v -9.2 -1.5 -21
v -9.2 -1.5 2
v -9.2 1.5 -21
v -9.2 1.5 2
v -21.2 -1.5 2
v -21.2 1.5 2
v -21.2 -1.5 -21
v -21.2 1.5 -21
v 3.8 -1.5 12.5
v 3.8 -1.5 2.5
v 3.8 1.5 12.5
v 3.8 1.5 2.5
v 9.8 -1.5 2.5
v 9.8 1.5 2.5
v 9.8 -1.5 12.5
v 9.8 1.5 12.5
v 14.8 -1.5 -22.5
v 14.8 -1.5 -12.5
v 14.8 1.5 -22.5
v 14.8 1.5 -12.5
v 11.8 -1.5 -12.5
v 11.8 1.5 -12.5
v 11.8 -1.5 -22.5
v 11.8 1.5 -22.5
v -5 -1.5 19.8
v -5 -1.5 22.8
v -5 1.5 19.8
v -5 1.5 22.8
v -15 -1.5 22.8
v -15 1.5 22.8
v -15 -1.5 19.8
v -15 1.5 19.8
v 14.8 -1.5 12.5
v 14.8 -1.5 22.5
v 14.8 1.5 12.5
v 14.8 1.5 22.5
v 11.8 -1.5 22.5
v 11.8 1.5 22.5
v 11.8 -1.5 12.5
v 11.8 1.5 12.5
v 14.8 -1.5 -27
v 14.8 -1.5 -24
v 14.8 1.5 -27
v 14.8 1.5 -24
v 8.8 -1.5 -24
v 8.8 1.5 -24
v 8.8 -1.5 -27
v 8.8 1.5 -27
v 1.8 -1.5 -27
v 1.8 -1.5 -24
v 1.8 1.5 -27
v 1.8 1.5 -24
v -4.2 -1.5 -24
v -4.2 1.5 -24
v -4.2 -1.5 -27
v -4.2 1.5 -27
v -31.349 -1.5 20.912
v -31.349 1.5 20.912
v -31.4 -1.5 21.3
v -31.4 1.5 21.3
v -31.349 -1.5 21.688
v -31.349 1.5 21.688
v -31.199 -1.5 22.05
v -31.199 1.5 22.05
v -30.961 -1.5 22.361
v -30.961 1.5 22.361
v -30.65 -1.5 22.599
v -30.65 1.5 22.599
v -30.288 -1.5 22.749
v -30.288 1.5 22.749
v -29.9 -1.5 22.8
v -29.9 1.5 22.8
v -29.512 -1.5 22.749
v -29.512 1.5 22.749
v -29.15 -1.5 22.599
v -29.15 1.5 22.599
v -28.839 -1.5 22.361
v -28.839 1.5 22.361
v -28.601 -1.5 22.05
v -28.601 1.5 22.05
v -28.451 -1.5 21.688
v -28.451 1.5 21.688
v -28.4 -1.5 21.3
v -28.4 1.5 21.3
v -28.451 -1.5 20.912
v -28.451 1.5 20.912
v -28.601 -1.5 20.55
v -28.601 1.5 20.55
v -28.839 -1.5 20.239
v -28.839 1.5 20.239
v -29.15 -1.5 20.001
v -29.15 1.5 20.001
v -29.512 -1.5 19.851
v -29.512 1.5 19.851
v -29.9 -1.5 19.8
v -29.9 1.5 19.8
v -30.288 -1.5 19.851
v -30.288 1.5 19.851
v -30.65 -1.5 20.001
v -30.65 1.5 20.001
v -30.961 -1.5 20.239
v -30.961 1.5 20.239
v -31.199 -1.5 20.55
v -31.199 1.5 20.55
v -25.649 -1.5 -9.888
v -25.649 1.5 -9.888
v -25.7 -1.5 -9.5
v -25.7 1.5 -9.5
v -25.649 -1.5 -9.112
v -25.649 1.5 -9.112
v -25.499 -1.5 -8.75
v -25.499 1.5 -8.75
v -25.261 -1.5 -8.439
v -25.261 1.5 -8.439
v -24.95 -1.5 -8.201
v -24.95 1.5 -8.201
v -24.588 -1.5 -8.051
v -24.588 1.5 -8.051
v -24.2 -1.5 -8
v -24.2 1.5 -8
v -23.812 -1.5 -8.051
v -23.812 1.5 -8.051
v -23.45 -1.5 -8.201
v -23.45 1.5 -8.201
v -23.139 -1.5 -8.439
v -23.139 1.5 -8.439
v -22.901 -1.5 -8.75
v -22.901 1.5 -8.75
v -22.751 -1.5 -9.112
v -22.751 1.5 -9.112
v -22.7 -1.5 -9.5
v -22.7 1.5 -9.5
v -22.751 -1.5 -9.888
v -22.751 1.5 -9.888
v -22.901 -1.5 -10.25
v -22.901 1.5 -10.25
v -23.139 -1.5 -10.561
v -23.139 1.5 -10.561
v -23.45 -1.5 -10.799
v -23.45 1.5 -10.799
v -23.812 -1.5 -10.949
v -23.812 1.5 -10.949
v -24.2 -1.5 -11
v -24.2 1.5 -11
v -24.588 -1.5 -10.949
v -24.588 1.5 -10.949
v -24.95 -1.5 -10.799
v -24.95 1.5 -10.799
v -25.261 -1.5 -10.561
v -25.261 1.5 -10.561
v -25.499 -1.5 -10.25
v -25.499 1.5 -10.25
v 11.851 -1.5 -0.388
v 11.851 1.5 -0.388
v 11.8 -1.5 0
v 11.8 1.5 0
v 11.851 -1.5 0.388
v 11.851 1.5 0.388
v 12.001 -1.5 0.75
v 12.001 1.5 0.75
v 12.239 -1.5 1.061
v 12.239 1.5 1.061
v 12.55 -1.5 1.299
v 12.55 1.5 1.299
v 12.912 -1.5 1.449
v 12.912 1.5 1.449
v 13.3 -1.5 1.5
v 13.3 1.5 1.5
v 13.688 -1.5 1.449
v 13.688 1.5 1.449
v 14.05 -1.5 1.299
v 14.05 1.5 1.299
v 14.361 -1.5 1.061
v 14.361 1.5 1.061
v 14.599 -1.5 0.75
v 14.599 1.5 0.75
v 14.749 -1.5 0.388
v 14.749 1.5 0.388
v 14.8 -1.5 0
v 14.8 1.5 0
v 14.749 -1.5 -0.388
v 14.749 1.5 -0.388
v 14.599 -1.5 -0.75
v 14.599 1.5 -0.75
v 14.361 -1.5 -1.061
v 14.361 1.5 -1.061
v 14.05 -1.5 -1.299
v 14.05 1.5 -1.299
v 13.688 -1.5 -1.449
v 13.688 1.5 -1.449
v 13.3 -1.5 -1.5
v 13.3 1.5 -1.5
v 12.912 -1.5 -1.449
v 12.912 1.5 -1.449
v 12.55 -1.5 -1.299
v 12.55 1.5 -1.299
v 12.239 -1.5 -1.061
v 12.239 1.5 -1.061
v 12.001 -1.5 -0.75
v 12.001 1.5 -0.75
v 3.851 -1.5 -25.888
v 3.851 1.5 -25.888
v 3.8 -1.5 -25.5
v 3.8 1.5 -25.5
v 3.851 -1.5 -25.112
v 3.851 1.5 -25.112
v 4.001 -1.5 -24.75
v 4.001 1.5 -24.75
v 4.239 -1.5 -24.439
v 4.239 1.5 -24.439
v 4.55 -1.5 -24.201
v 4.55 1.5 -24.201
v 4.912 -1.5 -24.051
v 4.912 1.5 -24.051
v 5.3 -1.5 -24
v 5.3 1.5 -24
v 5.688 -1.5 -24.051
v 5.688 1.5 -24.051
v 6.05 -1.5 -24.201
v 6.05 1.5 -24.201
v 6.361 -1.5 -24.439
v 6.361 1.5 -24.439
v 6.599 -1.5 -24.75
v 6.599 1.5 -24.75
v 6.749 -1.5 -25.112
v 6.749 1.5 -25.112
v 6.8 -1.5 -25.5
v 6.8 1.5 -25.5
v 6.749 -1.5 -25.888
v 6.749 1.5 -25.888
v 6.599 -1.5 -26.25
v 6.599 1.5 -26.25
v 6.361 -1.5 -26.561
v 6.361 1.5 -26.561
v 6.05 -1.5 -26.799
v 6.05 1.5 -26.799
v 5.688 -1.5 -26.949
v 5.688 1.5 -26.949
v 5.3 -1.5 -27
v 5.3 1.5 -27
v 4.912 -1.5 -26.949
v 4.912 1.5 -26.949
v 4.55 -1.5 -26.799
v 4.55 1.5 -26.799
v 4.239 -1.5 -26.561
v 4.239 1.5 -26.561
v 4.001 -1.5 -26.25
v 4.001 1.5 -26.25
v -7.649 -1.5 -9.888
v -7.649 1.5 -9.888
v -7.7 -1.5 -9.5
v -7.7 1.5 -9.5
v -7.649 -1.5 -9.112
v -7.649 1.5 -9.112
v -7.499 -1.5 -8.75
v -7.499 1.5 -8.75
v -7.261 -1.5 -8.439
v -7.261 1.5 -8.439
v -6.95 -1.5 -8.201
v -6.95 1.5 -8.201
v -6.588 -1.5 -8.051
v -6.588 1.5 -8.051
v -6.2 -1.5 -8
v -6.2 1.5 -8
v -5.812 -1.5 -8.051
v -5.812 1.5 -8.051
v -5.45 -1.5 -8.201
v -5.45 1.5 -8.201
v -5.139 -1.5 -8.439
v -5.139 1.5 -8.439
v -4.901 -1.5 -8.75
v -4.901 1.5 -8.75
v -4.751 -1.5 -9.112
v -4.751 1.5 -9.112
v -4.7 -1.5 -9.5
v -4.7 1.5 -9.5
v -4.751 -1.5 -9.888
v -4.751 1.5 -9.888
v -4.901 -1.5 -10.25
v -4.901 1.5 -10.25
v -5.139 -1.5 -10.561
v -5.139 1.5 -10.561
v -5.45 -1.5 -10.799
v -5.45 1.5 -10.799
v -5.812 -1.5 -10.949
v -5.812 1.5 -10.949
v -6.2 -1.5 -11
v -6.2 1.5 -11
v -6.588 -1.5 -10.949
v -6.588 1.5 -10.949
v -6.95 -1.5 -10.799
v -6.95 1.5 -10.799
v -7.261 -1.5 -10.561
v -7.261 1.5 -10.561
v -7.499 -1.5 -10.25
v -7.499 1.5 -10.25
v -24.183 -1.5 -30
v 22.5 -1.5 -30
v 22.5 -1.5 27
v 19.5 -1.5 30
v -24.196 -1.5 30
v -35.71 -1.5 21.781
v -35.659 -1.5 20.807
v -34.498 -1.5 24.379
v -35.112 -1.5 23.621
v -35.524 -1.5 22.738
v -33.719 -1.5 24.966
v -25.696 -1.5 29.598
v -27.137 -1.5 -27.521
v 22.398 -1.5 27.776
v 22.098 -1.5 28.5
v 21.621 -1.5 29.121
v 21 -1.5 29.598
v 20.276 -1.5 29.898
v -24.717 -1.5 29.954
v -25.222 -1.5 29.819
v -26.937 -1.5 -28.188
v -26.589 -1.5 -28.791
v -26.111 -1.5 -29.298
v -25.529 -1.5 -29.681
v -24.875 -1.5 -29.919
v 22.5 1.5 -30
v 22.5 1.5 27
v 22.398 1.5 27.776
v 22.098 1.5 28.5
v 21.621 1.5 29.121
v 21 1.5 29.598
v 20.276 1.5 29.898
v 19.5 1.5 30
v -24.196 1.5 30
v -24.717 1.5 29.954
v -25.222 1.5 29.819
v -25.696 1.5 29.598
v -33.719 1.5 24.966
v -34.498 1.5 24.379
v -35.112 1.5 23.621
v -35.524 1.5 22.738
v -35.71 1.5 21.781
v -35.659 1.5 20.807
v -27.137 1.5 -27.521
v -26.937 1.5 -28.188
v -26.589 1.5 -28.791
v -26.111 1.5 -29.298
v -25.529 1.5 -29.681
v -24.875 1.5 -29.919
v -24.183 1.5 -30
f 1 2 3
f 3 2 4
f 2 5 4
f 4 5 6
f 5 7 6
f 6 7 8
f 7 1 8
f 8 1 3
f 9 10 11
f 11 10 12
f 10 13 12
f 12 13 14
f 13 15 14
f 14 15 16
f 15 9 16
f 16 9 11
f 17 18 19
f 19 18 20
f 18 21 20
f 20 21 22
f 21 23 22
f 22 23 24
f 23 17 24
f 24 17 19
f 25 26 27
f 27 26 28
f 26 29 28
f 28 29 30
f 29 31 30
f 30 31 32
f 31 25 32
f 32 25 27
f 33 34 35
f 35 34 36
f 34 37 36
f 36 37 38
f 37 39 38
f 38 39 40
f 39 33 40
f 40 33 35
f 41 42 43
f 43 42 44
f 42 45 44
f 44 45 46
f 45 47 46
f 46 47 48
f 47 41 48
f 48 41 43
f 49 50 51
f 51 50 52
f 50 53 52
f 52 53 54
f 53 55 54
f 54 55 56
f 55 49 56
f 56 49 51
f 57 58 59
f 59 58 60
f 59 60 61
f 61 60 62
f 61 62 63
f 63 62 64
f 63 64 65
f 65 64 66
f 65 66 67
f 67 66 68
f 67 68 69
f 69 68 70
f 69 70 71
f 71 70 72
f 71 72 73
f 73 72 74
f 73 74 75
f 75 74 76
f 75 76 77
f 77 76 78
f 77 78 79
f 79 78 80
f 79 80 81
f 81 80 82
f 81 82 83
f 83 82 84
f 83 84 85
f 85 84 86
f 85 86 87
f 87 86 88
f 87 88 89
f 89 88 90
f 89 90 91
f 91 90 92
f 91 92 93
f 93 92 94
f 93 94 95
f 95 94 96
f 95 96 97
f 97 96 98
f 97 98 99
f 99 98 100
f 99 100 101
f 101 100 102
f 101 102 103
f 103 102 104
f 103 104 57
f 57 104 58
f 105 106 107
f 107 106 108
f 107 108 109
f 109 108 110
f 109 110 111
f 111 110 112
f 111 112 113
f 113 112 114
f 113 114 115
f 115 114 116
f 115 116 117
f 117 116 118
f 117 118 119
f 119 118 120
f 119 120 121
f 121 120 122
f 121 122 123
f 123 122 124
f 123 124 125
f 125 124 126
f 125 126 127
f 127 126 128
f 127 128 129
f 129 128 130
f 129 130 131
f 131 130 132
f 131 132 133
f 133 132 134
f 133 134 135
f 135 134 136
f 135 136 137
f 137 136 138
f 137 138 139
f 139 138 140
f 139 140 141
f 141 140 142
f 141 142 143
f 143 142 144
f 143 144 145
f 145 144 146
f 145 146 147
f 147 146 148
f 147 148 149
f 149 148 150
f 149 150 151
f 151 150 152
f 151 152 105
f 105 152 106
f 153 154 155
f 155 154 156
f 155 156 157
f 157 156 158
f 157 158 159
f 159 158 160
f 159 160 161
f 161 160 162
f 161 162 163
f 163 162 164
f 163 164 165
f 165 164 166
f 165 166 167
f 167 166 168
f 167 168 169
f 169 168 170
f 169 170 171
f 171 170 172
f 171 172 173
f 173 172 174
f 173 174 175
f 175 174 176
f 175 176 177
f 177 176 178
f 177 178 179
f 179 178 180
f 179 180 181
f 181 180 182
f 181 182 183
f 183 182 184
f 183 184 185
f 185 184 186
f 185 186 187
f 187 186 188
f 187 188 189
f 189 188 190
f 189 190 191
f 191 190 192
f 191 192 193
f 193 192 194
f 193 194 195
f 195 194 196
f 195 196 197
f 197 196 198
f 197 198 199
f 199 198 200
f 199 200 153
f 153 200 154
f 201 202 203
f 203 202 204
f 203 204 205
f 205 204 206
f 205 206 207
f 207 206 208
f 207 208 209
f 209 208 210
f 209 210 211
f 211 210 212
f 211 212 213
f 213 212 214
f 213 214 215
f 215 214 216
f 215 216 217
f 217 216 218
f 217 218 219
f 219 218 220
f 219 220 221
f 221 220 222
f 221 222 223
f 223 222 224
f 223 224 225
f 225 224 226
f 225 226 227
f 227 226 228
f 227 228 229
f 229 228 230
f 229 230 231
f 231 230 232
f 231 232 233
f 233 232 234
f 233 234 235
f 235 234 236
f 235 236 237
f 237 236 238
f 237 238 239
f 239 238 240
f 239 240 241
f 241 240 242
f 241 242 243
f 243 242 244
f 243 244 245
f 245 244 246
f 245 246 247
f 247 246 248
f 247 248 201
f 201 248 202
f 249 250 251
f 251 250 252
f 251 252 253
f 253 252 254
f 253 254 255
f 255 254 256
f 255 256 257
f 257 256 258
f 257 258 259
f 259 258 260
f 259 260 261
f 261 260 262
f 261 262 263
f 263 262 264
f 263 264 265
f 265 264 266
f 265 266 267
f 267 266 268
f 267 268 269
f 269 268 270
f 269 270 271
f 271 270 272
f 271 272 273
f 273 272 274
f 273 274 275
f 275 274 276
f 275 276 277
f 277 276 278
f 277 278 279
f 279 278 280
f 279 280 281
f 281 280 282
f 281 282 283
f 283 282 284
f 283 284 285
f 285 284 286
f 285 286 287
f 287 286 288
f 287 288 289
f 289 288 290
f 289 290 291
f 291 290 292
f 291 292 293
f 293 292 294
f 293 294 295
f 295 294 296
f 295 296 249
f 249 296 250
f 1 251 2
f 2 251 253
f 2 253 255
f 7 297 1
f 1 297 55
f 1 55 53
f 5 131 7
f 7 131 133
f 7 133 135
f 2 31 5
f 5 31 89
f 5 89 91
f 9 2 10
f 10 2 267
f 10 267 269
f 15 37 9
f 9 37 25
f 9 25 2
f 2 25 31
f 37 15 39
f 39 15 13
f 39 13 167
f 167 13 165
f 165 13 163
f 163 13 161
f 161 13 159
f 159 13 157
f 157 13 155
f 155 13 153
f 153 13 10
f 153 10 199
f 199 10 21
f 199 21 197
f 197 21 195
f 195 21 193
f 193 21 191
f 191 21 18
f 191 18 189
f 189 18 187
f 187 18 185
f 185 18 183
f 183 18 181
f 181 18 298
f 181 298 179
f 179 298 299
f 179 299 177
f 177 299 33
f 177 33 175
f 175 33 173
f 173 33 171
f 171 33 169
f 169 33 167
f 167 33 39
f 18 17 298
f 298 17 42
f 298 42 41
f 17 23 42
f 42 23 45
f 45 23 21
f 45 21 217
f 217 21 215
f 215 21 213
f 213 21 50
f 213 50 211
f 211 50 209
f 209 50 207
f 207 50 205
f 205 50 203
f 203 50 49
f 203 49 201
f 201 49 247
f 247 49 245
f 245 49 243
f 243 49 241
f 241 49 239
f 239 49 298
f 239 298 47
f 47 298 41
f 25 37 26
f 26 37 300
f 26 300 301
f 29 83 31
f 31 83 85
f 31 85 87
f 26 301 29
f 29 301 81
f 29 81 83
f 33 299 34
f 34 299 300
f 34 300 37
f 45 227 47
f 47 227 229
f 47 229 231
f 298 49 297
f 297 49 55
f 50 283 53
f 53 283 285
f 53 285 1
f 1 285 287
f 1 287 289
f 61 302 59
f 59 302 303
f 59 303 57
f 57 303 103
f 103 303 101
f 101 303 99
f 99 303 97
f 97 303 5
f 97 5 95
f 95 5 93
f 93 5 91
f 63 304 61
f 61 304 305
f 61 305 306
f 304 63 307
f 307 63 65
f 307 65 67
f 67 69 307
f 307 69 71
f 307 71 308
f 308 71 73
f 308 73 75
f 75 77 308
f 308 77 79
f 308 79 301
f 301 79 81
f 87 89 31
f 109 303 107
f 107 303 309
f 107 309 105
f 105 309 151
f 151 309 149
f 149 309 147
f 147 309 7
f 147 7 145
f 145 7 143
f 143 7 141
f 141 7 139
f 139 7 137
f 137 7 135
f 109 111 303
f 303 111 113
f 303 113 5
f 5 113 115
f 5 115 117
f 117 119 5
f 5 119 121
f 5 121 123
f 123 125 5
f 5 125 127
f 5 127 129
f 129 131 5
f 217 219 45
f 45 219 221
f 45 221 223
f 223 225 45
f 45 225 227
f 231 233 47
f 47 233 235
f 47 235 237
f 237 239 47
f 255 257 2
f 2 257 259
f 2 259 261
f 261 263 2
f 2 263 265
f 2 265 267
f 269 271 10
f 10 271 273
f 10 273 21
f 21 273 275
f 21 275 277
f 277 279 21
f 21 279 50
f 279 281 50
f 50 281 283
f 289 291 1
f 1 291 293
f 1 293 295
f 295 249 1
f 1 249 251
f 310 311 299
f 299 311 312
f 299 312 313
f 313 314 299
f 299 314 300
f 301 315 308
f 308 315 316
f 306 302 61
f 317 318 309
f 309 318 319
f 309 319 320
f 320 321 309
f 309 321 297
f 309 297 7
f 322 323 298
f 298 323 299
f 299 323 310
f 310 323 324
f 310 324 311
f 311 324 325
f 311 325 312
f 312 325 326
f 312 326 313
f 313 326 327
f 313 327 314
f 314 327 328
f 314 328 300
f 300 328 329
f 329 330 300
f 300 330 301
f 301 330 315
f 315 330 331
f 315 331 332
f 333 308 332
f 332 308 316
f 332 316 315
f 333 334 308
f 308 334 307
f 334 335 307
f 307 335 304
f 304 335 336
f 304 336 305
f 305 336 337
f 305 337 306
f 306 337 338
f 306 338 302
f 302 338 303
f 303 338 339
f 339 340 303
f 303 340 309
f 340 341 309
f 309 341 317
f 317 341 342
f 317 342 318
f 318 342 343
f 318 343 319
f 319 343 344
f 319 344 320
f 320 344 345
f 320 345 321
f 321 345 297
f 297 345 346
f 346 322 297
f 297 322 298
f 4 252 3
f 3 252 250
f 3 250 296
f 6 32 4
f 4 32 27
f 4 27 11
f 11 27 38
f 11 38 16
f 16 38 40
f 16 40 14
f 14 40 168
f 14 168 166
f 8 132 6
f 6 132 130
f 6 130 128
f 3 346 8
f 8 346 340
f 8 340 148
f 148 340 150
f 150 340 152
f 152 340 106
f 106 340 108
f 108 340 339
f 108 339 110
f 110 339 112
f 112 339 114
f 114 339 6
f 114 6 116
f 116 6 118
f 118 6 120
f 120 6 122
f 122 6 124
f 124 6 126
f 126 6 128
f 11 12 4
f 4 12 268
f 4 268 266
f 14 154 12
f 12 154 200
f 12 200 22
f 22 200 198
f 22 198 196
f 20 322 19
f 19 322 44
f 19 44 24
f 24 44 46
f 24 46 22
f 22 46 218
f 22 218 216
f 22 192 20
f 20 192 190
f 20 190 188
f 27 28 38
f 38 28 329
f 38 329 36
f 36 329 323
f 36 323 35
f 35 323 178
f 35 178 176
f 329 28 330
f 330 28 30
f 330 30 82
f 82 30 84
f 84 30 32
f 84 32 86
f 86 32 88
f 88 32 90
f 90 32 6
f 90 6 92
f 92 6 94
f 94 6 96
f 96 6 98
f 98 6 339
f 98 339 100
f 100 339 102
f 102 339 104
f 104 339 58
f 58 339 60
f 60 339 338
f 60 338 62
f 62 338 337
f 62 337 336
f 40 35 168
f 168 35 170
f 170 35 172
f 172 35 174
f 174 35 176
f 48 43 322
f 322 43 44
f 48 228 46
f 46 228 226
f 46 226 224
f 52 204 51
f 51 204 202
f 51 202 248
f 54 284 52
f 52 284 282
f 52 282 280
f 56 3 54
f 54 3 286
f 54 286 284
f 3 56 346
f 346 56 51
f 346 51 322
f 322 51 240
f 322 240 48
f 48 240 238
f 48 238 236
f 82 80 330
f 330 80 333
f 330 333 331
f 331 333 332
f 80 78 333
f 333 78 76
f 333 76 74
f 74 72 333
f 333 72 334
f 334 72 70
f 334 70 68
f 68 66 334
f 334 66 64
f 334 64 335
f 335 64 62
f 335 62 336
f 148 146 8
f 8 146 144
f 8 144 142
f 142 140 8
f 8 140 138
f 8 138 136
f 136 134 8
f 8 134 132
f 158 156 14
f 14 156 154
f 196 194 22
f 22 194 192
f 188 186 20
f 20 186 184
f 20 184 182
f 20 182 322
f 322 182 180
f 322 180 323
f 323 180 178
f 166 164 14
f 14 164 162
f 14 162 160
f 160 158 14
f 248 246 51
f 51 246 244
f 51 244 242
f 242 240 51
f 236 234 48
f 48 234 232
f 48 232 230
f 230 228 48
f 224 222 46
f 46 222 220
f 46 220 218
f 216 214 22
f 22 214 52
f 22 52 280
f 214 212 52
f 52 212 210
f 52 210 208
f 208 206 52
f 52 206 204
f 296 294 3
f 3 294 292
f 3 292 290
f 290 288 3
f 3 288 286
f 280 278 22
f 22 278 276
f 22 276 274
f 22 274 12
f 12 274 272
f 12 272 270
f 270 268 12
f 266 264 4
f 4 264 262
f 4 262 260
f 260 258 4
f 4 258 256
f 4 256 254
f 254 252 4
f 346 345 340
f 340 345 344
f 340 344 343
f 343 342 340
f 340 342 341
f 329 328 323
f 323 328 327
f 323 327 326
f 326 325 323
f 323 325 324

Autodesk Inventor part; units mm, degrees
ref_plane "YZ Plane" through (0, 0, 0) normal (1, 0, 0) x (0, 1, 0)
ref_plane "XZ Plane" through (0, 0, 0) normal (0, 1, 0) x (-1, 0, 0)
ref_plane "XY Plane" through (0, 0, 0) normal (0, 0, 1) x (1, 0, 0)
sketch "草圖1" plane through (0, 0, 0) normal (0, 1, 0) x (-1, 0, 0)
  line L0 (24.1962, 30) -> (-19.5, 30)
  line L1 (-22.5, 27) -> (-22.5, -27)
  line L2 (-22.5, -30) -> (24.1827, -30)
  line L3 (25, 30) -> (17.3, 30)
  line L4 (25.6962, 29.5981) -> (33.7194, 24.9658)
  line L5 (-19.5, -30) -> (26.7, -30)
  line L6 (27.1371, -27.5209) -> (35.6587, 20.8071)
  line L7 (-14.8, -27) -> (-8.8, -27)
  line L8 (-8.8, -27) -> (-8.8, -24)
  line L9 (-8.8, -24) -> (-14.8, -24)
  line L10 (-14.8, -24) -> (-14.8, -27)
  line L11 (-14.8, -22.5) -> (-11.8, -22.5)
  line L12 (-11.8, -22.5) -> (-11.8, -12.5)
  line L13 (-11.8, -12.5) -> (-14.8, -12.5)
  line L14 (-14.8, -12.5) -> (-14.8, -22.5)
  line L15 (-11.8, -12.5) -> (-13.3, -12.5)
  circle A0 centre (-13.3, 0) radius 1.5
  line L16 (-11.8, 22.5) -> (-14.8, 22.5)
  line L17 (-14.8, 22.5) -> (-14.8, 12.5)
  line L18 (-14.8, 12.5) -> (-11.8, 12.5)
  line L19 (-11.8, 12.5) -> (-11.8, 22.5)
  circle A1 centre (-5.3, -25.5) radius 1.5
  line L20 (4.2, -24) -> (-1.8, -24)
  line L21 (-1.8, -24) -> (-1.8, -27)
  line L22 (-1.8, -27) -> (4.2, -27)
  line L23 (4.2, -27) -> (4.2, -24)
  line L24 (9.2, -21) -> (21.2, -21)
  line L25 (21.2, -21) -> (21.2, 2)
  line L26 (21.2, 2) -> (9.2, 2)
  line L27 (9.2, 2) -> (9.2, -21)
  line L28 (9.2, -21) -> (9.2, -9.5)
  circle A2 centre (6.2, -9.5) radius 1.5
  circle A3 centre (24.2, -9.5) radius 1.5
  line L29 (5, 19.8) -> (15, 19.8)
  line L30 (15, 19.8) -> (15, 22.8)
  line L31 (15, 22.8) -> (5, 22.8)
  line L32 (5, 22.8) -> (5, 19.8)
  line L33 (-22.5, -30) -> (-22.5, -27)
  line L34 (-22.5, -27) -> (-14.8, -27)
  line L35 (-3.8, 12.5) -> (-9.8, 12.5)
  line L36 (-9.8, 12.5) -> (-9.8, 2.5)
  line L37 (-9.8, 2.5) -> (-3.8, 2.5)
  line L38 (-3.8, 2.5) -> (-3.8, 12.5)
  line L39 (15, 22.8) -> (15, 21.3)
  line L40 (15, 21.3) -> (29.9, 21.3)
  circle A4 centre (29.9, 21.3) radius 1.5
  arc A5 (25.6962, 29.5981) -> (24.1962, 30) centre (24.1962, 27) ccw
  arc A6 (35.6587, 20.8071) -> (33.7194, 24.9658) centre (31.7194, 21.5017) ccw
  arc A7 (24.1827, -30) -> (27.1371, -27.5209) centre (24.1827, -27) ccw
  arc A8 (-22.5, -27) -> (-19.5, -30) centre (-19.5, -27) ccw
  arc A9 (-19.5, 30) -> (-22.5, 27) centre (-19.5, 27) ccw
  point P0 (-22.5, 30)
  point P1 (25, -30)
  dimension "d0" = 60
  dimension "d1" = 47.5
  dimension "d43" = 49.2
  dimension "d44" = 110
  dimension "d46" = 3
  dimension "d47" = 1.5
  dimension "d48" = 3
  dimension "d49" = 10
  dimension "d50" = 3
  dimension "d51" = 1.5
  dimension "d53" = 3
  dimension "d54" = 3
  dimension "d55" = 10
  dimension "d56" = 3
  dimension "d61" = 3
  dimension "d62" = 6
  dimension "d63" = 3
  dimension "d67" = 12
  dimension "d68" = 23
  dimension "d69" = 11.5
  dimension "d72" = 3
  dimension "d73" = 3
  dimension "d74" = 10
  dimension "d75" = 3
  dimension "d76" = 3
  dimension "d77" = 7.7
  dimension "d78" = 6
  dimension "d79" = 10
  dimension "d80" = 32.5
  dimension "d81" = 12.7
  dimension "d82" = 14.9
  dimension "d83" = 3
  dimension "d84" = 3
  dimension "d85" = 4
extrude "擠出2" add sketch "草圖1" along normal mid plane 3
properties part number "板子2"
